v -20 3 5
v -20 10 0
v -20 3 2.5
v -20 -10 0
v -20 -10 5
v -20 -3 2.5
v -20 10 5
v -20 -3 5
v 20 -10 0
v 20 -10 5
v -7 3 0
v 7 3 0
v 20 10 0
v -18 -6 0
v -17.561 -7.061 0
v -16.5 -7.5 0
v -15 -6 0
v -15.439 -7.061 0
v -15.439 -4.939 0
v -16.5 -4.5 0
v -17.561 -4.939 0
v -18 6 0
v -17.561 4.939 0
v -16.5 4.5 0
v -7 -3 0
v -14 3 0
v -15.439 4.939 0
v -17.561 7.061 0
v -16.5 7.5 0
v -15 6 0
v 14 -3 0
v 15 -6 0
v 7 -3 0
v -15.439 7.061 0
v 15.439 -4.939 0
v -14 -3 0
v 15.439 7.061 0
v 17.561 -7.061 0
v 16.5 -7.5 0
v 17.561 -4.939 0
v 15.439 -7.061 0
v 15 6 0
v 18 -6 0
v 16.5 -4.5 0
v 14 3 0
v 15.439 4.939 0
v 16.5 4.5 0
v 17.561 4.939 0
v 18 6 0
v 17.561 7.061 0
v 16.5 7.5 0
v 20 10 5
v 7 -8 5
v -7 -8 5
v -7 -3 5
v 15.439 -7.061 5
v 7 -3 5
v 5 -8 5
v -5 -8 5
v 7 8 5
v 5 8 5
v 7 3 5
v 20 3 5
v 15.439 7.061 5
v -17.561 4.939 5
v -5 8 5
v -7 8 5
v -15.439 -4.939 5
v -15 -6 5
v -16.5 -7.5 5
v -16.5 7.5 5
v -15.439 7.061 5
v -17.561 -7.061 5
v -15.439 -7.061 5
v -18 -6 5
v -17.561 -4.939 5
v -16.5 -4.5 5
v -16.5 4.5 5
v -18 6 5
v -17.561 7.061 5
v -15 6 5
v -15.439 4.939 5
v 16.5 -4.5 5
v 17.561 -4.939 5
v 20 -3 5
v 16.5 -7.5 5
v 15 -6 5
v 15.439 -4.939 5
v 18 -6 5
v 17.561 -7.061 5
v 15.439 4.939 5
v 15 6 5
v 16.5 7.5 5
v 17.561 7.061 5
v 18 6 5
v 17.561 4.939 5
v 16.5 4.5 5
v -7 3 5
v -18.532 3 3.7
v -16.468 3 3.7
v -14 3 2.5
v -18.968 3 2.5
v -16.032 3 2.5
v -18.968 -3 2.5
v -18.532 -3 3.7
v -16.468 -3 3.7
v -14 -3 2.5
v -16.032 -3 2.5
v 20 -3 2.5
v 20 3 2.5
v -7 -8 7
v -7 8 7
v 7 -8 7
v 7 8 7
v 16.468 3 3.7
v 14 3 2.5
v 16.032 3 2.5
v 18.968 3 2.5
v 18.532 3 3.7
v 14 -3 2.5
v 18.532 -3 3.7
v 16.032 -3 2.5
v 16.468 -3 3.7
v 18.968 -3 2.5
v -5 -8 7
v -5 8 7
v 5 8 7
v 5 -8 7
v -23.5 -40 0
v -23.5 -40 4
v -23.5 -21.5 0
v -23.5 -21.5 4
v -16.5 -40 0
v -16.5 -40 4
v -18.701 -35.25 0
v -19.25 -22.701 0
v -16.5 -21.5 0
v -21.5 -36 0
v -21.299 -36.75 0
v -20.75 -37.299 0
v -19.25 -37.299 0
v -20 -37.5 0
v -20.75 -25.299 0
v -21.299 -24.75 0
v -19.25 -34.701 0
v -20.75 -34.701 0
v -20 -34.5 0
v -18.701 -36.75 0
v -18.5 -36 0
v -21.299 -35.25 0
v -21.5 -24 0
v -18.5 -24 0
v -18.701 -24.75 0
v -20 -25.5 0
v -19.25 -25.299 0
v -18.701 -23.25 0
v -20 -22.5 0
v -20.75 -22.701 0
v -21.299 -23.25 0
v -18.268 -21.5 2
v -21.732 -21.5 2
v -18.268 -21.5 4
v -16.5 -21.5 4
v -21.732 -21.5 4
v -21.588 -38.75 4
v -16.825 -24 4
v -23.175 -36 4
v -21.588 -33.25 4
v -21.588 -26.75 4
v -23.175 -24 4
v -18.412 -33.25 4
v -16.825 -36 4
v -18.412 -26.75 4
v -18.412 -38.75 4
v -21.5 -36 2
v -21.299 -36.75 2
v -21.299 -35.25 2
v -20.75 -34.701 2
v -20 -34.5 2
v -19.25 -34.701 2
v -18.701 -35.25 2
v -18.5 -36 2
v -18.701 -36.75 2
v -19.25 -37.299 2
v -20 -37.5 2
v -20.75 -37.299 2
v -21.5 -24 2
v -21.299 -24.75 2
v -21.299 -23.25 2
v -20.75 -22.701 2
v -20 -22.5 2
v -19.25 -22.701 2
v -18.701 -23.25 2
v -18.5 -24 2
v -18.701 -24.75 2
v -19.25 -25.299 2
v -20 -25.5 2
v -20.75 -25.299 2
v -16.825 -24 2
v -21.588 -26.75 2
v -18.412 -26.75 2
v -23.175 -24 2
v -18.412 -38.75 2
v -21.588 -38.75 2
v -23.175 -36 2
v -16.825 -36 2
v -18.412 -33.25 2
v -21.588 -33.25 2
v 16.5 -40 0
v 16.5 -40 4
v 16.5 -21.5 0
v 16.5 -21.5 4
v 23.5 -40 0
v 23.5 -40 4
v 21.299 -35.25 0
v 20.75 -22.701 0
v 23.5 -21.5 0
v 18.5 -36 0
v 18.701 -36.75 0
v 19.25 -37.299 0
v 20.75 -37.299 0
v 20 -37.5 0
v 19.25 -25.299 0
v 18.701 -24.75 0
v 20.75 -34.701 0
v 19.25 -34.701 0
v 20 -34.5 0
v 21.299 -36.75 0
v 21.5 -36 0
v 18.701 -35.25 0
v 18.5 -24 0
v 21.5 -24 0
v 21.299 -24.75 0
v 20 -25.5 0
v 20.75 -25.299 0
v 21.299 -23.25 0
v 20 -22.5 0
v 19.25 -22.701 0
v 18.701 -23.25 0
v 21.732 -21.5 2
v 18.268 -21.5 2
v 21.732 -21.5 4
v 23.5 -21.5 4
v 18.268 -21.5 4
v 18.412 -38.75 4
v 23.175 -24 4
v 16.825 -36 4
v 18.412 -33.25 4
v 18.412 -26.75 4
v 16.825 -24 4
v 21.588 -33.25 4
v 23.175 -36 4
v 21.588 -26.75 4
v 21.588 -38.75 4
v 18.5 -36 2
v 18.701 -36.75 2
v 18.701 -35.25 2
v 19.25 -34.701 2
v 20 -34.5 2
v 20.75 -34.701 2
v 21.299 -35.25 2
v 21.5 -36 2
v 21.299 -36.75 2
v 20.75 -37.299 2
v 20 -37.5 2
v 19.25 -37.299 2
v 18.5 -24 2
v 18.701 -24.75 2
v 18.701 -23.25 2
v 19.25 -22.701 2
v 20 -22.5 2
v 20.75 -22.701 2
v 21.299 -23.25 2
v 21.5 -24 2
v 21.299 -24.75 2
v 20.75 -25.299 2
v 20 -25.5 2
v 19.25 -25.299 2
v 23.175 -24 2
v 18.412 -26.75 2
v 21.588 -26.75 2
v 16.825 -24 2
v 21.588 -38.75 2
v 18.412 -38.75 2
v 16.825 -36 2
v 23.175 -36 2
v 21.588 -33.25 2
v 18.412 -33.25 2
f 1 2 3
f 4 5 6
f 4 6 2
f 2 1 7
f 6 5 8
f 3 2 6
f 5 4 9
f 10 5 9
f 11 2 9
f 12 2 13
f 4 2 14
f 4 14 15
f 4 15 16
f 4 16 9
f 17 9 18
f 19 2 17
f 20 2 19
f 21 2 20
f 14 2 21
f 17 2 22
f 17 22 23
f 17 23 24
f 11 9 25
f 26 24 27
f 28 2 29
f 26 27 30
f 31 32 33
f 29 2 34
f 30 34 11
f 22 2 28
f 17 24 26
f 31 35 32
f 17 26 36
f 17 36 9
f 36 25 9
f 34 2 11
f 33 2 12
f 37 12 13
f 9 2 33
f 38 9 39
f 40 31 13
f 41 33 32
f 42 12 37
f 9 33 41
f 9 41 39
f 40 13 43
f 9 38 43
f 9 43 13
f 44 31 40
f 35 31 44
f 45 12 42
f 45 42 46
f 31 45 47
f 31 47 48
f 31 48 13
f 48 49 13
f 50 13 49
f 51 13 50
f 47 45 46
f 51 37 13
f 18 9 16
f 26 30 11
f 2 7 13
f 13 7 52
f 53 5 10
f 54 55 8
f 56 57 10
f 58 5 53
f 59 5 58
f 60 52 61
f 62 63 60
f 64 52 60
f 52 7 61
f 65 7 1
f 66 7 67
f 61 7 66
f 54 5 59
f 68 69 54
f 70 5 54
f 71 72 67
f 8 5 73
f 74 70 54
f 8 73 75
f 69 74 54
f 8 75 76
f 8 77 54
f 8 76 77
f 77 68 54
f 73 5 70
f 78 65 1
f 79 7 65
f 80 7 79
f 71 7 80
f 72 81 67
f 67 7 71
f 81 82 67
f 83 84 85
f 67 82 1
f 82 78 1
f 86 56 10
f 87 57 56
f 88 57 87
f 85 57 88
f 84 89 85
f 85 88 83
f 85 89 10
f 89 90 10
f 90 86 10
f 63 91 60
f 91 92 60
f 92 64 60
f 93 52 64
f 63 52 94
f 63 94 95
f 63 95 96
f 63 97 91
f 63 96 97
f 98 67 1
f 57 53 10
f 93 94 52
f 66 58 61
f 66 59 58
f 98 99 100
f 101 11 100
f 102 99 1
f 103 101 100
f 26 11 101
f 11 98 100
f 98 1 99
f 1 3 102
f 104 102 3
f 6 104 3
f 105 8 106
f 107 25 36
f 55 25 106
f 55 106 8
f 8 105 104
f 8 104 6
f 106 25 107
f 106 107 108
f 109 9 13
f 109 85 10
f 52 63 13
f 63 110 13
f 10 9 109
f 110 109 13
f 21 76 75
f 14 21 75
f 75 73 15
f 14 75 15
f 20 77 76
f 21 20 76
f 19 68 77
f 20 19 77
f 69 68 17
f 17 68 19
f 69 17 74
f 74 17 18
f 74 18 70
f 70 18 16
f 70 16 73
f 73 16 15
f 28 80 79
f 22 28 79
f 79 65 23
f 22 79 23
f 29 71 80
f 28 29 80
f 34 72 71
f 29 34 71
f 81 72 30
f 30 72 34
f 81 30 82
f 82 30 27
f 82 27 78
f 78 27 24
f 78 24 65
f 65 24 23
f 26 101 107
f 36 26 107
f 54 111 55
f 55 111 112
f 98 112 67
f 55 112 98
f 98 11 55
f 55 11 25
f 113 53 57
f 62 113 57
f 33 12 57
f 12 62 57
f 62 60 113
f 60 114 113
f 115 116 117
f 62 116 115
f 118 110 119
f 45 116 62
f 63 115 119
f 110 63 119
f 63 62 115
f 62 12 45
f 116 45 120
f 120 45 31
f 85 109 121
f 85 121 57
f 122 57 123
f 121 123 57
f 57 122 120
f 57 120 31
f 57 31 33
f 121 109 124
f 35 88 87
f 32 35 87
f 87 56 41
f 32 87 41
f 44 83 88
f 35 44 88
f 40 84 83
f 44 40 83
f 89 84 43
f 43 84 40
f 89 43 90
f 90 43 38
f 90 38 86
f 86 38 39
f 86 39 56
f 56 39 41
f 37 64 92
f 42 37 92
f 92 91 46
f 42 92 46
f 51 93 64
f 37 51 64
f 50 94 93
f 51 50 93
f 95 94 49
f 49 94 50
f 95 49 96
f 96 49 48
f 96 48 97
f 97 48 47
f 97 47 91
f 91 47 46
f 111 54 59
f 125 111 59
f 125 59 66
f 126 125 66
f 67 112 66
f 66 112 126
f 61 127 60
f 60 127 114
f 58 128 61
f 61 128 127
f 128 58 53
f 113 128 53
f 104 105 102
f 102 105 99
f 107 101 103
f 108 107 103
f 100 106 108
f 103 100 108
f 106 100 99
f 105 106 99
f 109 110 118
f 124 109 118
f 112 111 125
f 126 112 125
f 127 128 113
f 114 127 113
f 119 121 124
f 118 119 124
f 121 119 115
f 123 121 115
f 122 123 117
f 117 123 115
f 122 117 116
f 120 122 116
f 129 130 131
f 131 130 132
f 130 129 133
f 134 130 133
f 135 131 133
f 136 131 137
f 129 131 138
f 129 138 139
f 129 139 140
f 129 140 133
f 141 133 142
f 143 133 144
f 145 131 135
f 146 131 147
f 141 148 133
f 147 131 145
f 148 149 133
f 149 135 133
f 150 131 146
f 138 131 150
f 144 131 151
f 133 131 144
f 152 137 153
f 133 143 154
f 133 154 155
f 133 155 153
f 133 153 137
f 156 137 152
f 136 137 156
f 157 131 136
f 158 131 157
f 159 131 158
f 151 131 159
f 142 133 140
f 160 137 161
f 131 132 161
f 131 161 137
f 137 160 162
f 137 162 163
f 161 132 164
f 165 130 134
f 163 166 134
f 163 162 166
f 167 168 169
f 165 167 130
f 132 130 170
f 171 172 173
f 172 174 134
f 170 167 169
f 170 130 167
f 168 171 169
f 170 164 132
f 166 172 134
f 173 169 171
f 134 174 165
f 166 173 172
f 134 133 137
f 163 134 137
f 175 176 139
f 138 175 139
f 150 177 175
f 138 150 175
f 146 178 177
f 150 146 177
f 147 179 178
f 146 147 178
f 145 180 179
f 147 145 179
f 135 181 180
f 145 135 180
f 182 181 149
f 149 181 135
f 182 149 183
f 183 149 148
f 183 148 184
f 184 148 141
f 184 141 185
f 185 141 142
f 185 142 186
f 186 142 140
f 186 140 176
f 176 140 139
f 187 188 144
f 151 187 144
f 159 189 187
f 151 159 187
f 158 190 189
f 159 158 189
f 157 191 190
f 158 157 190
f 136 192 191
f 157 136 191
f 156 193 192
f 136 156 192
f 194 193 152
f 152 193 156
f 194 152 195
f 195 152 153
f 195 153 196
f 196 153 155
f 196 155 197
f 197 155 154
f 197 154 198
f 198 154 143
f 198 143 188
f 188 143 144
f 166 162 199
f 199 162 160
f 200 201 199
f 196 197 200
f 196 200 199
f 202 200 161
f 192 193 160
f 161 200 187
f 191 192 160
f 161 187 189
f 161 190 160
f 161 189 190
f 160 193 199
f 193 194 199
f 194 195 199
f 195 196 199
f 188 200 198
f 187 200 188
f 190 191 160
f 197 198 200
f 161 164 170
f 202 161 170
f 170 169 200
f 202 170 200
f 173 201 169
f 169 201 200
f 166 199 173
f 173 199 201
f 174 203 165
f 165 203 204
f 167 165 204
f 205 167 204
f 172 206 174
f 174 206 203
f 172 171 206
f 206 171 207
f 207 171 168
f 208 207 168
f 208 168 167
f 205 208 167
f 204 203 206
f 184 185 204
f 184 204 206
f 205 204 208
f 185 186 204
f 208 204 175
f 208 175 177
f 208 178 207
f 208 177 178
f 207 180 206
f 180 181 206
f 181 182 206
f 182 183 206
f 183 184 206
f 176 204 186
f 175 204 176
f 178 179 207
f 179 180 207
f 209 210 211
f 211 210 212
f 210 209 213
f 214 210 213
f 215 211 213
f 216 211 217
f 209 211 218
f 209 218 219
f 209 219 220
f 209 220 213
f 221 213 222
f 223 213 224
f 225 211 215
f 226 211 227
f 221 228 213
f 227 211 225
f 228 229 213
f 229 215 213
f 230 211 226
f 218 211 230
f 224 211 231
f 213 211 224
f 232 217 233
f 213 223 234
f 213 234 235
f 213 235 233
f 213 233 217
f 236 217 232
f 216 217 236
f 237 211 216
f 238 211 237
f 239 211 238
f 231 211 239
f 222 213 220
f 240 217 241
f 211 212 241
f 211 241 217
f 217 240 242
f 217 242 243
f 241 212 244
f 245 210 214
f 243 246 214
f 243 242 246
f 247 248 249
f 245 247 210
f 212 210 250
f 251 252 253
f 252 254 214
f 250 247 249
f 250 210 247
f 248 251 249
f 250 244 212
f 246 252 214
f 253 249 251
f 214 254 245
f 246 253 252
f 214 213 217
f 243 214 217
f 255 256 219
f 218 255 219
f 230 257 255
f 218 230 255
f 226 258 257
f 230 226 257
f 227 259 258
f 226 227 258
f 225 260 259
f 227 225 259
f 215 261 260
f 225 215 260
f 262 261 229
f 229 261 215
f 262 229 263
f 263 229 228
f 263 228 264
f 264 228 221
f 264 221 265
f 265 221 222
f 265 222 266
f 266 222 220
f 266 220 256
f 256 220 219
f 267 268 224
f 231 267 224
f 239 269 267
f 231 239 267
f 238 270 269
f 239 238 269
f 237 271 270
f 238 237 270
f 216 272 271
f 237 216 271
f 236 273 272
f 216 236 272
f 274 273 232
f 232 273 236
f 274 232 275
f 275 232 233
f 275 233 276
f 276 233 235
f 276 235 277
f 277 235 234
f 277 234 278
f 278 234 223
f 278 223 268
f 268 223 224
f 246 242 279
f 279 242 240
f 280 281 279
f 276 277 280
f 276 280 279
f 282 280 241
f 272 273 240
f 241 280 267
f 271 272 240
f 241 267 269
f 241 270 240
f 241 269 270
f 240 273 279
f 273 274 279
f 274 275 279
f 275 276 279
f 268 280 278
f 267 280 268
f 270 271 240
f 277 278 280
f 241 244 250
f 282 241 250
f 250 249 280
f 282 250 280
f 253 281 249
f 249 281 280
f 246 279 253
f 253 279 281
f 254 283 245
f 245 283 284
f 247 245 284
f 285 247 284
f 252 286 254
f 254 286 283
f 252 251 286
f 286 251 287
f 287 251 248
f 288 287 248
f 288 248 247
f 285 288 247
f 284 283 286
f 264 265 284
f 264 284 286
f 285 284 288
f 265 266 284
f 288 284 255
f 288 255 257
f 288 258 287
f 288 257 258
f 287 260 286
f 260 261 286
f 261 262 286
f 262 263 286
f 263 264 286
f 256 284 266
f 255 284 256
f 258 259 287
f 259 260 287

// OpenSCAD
// file: ../ShapeLibrary/CounterSink.scad
// Vertical countersink with top of countersink centred on origin 
//
// od = overall diameter (for screw head)
// oh = overall height (screw + head +recesss)
// sd = screw diameter
// sh = screw height (to top of countersink)
module countersinkZ(od, oh, sd, sh)
{
    union()
    {
        intersection()
	    {
            translate([0,0,-sh]) cylinder(r=od/2, h=oh, $fn=12);
            translate([0,0,-od/2]) cylinder(r1=0, r2=oh+od/2, h=oh+od/2, $fn=12);
        }
    translate([0,0,-sh]) cylinder(r=sd/2, h=sh, $fn=12);
    }
}

// Countersink with screw directed along negative X-axis
module countersinkX(od, oh, sd, sh)
{
    rotate([0,90,0]) countersinkZ(od, oh, sd, sh);
}

// Countersink with screw directed along negative Y-axis
module countersinkY(od, oh, sd, sh)
{
    rotate([90,0,0]) countersinkZ(od, oh, sd, sh);
}


// Examples
countersinkZ(8, 20, 4, 10);

translate([0,15,0]) countersinkX(8, 20, 4, 10);

translate([15,0,0]) countersinkY(8, 20, 4, 10);
// file: ../ShapeLibrary/NutRecess.scad
// Vertical screw hole nut recess with base of nut centred on origin 
//
// af = nut size across faces
// oh = overall height (screw + head + recesss)
// sd = screw diameter
// sh = screw height (to shoulder of nut recess)
//
module nutrecessZ(af, oh, sd, sh)
{
  sin60 = sin(60);
  union()
  {
    // % translate([0,0,oh-sh]) cylinder(r=af/sin60/2, h=5, $fn=12);
    // Square shoulder...
    //cylinder(r=af/sin60/2, h=oh-sh, $fn=6);
    // Angle shoulder at 45deg for printing...
    intersection()
    {
        translate([0,0,0]) cylinder(r=af/sin60/2, h=oh-sh, $fn=6);
        //translate([0,0,-((af/2)-(sd/2))/2])
        //  cylinder(r1=sd/2, r2=sd/2+(oh-sh), h=oh-sh, $fn=12);
    }
    translate([0,0,-sh]) cylinder(r=sd/2, h=oh, $fn=12);
  }
}

// Nut recess with screw directed along negative X-axis
module nutrecessX(af, oh, sd, sh)
{
    rotate([0,90,0]) nutrecessZ(af, oh, sd, sh);
}

// Nut recess with screw directed along negative Y-axis
module nutrecessY(af, oh, sd, sh)
{
    rotate([90,0,0]) nutrecessZ(af, oh, sd, sh);
}


// Examples
nutrecessZ(7, 20, 4, 10);

translate([0,15,0]) nutrecessX(7, 20, 4, 10);

translate([15,0,0]) nutrecessY(7, 20, 4, 10);
// main file
// Drive belt connector

use <../ShapeLibrary/NutRecess.scad>
use <../ShapeLibrary/CounterSink.scad>

// Tooth profile, tooth centred on origin
//
// p = pitch (tooth is half this)
// w = width
// h = height of tooth (extra is added at base)
// a = angle of tooth face
//
module Tooth(p, w, h, a)
{
    d = 0.1;
    difference()
    {
        translate([0,0,d/2])
            cube(size=[p, w, h+d], center=true);
        translate([p/4,0,0])
            rotate([0,a,0])
                translate([p/2,0,0])
                    cube(size=[p, w*2, h*4], center=true);
        translate([-p/4,0,0])
            rotate([0,-a,0])
                translate([-p/2,0,0])
                    cube(size=[p, w*2, h*4], center=true);
    }
}

//Tooth(5, 6, 1.2, 20);

// Tooth profile section of length l and width w, 
// Aligned with and centred on X axis, with teeth downwards
// touching X-Y plane
// can be subtracted from object to leave tooth profile.
//
// Per http://www.contitech.de/pages/produkte/antriebsriemen/antrieb-industrie/download/TD_Synchroflex_en.pdf
//   Tooth pitch = 5
//   Tooth andgle between faces = 40%
//   Tooth height = 1.2
//
module ToothProfileX(l, w)
{
    tp = 5;
    th = 1.2;
    ta = 20;
    translate([-l/2-tp/4, -w/2, th]) cube(size=[l+tp/2, w, 10]);
    for ( to = [ -l/2 : tp : l/2 ] )
    {
        translate([to,0,th/2]) Tooth(tp,w,th,ta);
    }
}

//ToothProfileX(80, 6);

// Belt connector base, aligned with X axis
//
// l   = overall length
// w   = overall width
// d   = overall thickness (depth)
// l1  = length attachment prong
// l2  = length locating ridge
// l3  = length belt hole 
// bw  = belt width
// bd  = belt depth (to extent of teeth)
// hpx = hole pitch X
// hpy = hole pitch Y
// hd  = hole diameter (countersink width twice this)
// naf = nut across faces size
// nt  = nut thickness
//
module BeltConnectorBase(l, w, d,  l1, l2, l3, bw, bd,  hpx, hpy, hd,  naf, nt)
{
    union()
    {
        difference()
        {
            translate([-l/2, -w/2, 0]) cube(size=[l, w, d]);
            translate([0,0,d-bd]) ToothProfileX(l, bw);
            for ( xo = [-(l1/2+l2)-l3, (l1/2+l2)] )
                {
                    translate([xo, -bw/2, -d/2])
                    {
                        cube(size=[l3,bw,d*2]);
                    }
                }
            for ( xo = [-hpx/2, hpx/2])
            {
                for ( yo = [-hpy/2, hpy/2] )
                {
                    translate([xo, yo, -d/2])
                        cylinder(r=hd/2, h=d*2, $fn=8) ;
            //        translate([xo, yo, nt])
            //            mirror([0,0,1])
            //                nutrecessZ(naf, d*3, 3, d*2);
                }
            }
        }
        translate([-l1/2-l2,-w/2, 0])
            cube(size=[l1+l2+l2, w, d]) ;
        for ( xo =[-l1/2-l2, l1/2] )
            translate([xo,-w/2+2,0])
                cube(size=[l2, w-4, d+l2]) ;
    }
}

// Belt connector clamping piece
//
// l   = overall length
// w   = overall width
// d   = overall thickness (depth)
// hpy = hole pitch Y
// hd  = hole diameter (countersink width twice this)
// nt  = nut thickness
//
module BeltConnectorClamp(l, w, d, hpy, hd, naf, nt)
{
    difference()
    {
        translate([-l/2, -w/2, 0]) cube(size=[l, w-1.5, d]);
        for ( yo = [-hpy/2, hpy/2] )
        {
            //translate([0, yo, d]) 
            //    countersinkZ(6, d*3, 3, d*2);
            for ( yo = [-hpy/2, hpy/2] )
                translate([0, yo, nt]) 
                    nutrecessZ(naf, d*3, 3, d*2);
        }
    }
}

BeltConnectorBase(40, 20, 5,   10, 2, 7,   6, 2.5,   33, 12, 3,   5.5, 2);

for ( xo = [ -20, 20 ] )
{
    translate([xo, -30, 0]) 
        BeltConnectorClamp(7, 20, 4,  12, 3, 5.5, 2);
} 
